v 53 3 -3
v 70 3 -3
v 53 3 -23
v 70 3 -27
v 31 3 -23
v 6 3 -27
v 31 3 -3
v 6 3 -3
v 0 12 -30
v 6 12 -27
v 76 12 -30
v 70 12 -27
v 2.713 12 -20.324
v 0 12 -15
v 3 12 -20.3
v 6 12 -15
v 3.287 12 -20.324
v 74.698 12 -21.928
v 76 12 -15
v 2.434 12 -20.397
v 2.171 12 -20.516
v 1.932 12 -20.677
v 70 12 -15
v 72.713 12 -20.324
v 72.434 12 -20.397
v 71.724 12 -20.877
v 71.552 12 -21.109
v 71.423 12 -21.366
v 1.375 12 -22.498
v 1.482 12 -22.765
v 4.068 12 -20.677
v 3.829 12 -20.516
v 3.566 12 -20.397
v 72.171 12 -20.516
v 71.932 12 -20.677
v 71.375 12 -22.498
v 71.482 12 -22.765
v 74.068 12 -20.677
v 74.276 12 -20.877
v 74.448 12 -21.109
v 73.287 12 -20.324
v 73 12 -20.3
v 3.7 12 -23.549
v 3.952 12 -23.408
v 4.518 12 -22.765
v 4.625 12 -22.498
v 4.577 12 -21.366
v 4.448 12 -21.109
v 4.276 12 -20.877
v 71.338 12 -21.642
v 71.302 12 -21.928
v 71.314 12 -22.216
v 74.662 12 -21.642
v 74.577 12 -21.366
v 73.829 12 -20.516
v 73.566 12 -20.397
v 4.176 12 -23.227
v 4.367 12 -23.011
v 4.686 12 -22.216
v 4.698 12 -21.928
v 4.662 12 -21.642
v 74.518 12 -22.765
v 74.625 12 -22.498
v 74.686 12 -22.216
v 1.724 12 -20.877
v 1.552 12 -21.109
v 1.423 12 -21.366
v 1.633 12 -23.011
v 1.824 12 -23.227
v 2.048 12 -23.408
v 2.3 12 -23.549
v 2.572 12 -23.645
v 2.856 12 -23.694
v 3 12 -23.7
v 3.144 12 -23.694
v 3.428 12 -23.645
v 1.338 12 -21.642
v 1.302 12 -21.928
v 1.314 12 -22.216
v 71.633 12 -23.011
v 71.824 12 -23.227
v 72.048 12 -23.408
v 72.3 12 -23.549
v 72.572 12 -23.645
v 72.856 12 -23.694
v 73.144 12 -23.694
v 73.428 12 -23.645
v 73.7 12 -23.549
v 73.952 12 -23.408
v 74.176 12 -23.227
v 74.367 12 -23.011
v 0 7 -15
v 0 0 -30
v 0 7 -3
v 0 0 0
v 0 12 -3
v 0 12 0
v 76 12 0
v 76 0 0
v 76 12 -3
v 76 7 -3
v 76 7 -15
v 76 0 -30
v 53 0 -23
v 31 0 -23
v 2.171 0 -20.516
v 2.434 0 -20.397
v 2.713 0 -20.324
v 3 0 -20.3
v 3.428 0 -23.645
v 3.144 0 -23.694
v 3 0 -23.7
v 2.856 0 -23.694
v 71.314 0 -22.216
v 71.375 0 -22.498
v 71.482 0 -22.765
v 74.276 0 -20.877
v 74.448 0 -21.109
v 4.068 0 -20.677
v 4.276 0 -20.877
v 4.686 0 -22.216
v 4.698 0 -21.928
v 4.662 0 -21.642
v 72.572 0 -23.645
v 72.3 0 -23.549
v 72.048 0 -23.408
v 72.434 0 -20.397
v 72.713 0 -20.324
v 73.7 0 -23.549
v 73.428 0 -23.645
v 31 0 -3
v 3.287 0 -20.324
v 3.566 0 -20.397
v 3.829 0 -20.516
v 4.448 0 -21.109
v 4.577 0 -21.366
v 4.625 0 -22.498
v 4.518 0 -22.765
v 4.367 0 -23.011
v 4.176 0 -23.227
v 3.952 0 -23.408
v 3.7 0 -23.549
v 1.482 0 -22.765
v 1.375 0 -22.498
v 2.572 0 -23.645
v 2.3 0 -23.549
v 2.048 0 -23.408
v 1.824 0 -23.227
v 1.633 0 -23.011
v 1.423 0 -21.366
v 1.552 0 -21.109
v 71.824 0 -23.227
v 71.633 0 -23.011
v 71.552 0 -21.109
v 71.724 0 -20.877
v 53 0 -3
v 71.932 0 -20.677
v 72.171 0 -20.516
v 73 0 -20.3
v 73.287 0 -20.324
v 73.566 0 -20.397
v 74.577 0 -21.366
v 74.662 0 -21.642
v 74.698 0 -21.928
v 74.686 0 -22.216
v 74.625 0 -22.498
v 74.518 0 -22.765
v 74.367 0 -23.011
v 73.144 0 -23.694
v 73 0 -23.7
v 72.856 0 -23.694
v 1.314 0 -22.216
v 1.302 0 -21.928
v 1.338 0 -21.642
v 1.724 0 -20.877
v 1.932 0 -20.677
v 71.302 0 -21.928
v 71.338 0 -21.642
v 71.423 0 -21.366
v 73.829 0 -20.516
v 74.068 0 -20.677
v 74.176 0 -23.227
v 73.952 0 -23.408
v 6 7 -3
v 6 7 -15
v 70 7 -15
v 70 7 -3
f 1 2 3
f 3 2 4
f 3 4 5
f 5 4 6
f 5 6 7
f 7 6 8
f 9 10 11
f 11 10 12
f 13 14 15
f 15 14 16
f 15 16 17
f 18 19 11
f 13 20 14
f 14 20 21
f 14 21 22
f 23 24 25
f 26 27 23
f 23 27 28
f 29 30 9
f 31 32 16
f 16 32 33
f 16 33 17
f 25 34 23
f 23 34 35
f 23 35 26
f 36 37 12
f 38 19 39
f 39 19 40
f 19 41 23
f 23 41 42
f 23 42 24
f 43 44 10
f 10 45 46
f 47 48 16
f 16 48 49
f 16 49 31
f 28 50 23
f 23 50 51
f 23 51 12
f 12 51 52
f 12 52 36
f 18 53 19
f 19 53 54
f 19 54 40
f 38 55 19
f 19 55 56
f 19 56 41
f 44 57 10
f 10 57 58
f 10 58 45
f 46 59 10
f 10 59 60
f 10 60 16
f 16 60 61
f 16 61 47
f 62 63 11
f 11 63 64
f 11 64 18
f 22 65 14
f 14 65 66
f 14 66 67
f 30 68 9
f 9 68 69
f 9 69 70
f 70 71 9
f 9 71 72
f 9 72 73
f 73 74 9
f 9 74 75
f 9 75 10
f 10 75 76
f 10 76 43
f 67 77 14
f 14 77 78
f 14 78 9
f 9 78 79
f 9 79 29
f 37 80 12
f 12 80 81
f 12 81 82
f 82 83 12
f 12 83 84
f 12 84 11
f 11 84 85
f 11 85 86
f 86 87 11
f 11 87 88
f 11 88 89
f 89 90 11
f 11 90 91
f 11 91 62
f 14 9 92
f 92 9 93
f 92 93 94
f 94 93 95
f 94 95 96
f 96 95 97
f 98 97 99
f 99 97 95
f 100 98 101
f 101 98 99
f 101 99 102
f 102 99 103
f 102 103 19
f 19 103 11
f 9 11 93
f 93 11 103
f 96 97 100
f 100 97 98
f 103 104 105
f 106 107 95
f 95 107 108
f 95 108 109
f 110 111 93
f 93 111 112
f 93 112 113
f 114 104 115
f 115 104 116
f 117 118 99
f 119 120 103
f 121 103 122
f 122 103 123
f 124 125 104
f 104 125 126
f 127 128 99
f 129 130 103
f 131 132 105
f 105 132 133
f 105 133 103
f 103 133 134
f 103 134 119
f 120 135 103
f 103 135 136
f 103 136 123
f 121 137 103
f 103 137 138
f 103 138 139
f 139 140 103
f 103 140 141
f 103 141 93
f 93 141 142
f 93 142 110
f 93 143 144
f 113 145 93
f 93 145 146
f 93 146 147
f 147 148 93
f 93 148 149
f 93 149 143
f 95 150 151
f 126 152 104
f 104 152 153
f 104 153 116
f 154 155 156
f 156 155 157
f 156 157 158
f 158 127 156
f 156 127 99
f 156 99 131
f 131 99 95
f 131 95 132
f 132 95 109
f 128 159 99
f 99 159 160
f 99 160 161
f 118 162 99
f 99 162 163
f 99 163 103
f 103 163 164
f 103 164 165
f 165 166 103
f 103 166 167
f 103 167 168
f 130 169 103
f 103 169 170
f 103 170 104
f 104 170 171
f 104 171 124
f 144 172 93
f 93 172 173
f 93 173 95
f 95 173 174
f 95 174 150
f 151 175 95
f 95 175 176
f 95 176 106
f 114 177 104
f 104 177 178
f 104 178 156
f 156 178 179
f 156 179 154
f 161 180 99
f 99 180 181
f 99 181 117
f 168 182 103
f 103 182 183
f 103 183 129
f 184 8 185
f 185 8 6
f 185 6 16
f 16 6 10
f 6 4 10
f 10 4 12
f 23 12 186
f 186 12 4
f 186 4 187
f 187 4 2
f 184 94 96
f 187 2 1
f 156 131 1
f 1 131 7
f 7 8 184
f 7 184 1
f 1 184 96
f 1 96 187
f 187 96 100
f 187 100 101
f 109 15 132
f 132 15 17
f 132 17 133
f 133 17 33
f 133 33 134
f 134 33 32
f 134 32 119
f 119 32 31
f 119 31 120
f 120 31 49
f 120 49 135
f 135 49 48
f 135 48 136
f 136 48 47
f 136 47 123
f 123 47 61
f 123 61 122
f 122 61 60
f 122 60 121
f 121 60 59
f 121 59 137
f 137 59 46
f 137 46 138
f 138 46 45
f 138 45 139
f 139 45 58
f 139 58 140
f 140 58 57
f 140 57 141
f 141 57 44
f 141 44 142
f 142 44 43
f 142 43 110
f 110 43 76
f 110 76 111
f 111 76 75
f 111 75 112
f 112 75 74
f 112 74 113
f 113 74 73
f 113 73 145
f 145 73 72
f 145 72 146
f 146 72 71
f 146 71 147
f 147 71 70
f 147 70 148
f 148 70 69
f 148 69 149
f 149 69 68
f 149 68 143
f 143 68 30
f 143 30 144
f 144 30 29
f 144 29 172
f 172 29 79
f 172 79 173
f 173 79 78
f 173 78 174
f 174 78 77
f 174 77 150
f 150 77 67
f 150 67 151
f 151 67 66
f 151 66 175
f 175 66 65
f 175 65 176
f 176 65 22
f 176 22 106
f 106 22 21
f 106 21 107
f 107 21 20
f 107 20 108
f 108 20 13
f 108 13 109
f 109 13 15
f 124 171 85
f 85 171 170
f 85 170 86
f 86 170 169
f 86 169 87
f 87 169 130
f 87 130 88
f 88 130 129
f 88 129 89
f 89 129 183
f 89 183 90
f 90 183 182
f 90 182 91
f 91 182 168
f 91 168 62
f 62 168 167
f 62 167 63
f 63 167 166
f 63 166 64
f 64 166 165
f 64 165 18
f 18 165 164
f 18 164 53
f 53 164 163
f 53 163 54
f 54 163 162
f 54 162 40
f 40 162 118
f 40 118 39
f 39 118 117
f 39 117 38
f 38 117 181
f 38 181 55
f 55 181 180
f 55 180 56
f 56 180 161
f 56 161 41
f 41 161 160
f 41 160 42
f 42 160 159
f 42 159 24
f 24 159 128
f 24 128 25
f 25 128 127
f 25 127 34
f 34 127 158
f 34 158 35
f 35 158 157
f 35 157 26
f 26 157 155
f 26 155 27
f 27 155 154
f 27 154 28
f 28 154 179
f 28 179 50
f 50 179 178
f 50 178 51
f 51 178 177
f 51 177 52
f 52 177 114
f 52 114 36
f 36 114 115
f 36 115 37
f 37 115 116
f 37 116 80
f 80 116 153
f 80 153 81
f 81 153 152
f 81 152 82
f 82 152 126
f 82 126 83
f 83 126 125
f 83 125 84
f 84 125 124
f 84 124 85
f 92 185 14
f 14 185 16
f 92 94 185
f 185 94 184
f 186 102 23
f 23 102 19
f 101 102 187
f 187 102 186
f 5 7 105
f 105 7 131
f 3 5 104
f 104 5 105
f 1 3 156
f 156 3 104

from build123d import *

# Parameters (mm, degrees)
SKETCH1_W           = 76
SKETCH1_H           = 30
BOSS_EXTRUDE1_DEPTH = 12
SKETCH2_W           = 64
SKETCH2_H           = 24
CUT_EXTRUDE1_DEPTH  = 9
SKETCH3_R           = 1.7
CUT_EXTRUDE2_DEPTH  = 20
SKETCH4_W           = 6
SKETCH4_H           = 12
CUT_EXTRUDE3_DEPTH  = 5
SKETCH5_W           = 22
SKETCH5_H           = 20
CUT_EXTRUDE4_DEPTH  = 5


with BuildPart() as part:
    # Sketch1 → Boss-Extrude1 (new body)
    with BuildSketch(Plane(origin=(0, 0, 0), x_dir=(1, 0, 0), z_dir=(0, 1, 0))):
        with Locations((38, 15)):
            Rectangle(SKETCH1_W, SKETCH1_H)
    extrude(amount=BOSS_EXTRUDE1_DEPTH)

    # Sketch2 → Cut-Extrude1 (cut)
    with BuildSketch(Plane(origin=(0, 12, 0), x_dir=(1, 0, 0), z_dir=(0, 1, 0))):
        with Locations((38, 15)):
            Rectangle(SKETCH2_W, SKETCH2_H)
    extrude(amount=-CUT_EXTRUDE1_DEPTH, mode=Mode.SUBTRACT)

    # Sketch3 → Cut-Extrude2 (cut)
    with BuildSketch(Plane(origin=(0, 12, 0), x_dir=(1, 0, 0), z_dir=(0, 1, 0))):
        with Locations((73, 22)):
            Circle(SKETCH3_R)
        with Locations((3, 22)):
            Circle(SKETCH3_R)
    extrude(amount=-CUT_EXTRUDE2_DEPTH, mode=Mode.SUBTRACT)

    # Sketch4 → Cut-Extrude3 (cut)
    with BuildSketch(Plane(origin=(0, 12, 0), x_dir=(1, 0, 0), z_dir=(0, 1, 0))):
        with Locations((73, 9)):
            Rectangle(SKETCH4_W, SKETCH4_H)
        with Locations((3, 9)):
            Rectangle(SKETCH4_W, SKETCH4_H)
    extrude(amount=-CUT_EXTRUDE3_DEPTH, mode=Mode.SUBTRACT)

    # Sketch5 → Cut-Extrude4 (cut)
    with BuildSketch(Plane(origin=(0, 3, 0), x_dir=(1, 0, 0), z_dir=(0, 1, 0))):
        with Locations((42, 13)):
            Rectangle(SKETCH5_W, SKETCH5_H)
    extrude(amount=-CUT_EXTRUDE4_DEPTH, mode=Mode.SUBTRACT)


solid = part.part
